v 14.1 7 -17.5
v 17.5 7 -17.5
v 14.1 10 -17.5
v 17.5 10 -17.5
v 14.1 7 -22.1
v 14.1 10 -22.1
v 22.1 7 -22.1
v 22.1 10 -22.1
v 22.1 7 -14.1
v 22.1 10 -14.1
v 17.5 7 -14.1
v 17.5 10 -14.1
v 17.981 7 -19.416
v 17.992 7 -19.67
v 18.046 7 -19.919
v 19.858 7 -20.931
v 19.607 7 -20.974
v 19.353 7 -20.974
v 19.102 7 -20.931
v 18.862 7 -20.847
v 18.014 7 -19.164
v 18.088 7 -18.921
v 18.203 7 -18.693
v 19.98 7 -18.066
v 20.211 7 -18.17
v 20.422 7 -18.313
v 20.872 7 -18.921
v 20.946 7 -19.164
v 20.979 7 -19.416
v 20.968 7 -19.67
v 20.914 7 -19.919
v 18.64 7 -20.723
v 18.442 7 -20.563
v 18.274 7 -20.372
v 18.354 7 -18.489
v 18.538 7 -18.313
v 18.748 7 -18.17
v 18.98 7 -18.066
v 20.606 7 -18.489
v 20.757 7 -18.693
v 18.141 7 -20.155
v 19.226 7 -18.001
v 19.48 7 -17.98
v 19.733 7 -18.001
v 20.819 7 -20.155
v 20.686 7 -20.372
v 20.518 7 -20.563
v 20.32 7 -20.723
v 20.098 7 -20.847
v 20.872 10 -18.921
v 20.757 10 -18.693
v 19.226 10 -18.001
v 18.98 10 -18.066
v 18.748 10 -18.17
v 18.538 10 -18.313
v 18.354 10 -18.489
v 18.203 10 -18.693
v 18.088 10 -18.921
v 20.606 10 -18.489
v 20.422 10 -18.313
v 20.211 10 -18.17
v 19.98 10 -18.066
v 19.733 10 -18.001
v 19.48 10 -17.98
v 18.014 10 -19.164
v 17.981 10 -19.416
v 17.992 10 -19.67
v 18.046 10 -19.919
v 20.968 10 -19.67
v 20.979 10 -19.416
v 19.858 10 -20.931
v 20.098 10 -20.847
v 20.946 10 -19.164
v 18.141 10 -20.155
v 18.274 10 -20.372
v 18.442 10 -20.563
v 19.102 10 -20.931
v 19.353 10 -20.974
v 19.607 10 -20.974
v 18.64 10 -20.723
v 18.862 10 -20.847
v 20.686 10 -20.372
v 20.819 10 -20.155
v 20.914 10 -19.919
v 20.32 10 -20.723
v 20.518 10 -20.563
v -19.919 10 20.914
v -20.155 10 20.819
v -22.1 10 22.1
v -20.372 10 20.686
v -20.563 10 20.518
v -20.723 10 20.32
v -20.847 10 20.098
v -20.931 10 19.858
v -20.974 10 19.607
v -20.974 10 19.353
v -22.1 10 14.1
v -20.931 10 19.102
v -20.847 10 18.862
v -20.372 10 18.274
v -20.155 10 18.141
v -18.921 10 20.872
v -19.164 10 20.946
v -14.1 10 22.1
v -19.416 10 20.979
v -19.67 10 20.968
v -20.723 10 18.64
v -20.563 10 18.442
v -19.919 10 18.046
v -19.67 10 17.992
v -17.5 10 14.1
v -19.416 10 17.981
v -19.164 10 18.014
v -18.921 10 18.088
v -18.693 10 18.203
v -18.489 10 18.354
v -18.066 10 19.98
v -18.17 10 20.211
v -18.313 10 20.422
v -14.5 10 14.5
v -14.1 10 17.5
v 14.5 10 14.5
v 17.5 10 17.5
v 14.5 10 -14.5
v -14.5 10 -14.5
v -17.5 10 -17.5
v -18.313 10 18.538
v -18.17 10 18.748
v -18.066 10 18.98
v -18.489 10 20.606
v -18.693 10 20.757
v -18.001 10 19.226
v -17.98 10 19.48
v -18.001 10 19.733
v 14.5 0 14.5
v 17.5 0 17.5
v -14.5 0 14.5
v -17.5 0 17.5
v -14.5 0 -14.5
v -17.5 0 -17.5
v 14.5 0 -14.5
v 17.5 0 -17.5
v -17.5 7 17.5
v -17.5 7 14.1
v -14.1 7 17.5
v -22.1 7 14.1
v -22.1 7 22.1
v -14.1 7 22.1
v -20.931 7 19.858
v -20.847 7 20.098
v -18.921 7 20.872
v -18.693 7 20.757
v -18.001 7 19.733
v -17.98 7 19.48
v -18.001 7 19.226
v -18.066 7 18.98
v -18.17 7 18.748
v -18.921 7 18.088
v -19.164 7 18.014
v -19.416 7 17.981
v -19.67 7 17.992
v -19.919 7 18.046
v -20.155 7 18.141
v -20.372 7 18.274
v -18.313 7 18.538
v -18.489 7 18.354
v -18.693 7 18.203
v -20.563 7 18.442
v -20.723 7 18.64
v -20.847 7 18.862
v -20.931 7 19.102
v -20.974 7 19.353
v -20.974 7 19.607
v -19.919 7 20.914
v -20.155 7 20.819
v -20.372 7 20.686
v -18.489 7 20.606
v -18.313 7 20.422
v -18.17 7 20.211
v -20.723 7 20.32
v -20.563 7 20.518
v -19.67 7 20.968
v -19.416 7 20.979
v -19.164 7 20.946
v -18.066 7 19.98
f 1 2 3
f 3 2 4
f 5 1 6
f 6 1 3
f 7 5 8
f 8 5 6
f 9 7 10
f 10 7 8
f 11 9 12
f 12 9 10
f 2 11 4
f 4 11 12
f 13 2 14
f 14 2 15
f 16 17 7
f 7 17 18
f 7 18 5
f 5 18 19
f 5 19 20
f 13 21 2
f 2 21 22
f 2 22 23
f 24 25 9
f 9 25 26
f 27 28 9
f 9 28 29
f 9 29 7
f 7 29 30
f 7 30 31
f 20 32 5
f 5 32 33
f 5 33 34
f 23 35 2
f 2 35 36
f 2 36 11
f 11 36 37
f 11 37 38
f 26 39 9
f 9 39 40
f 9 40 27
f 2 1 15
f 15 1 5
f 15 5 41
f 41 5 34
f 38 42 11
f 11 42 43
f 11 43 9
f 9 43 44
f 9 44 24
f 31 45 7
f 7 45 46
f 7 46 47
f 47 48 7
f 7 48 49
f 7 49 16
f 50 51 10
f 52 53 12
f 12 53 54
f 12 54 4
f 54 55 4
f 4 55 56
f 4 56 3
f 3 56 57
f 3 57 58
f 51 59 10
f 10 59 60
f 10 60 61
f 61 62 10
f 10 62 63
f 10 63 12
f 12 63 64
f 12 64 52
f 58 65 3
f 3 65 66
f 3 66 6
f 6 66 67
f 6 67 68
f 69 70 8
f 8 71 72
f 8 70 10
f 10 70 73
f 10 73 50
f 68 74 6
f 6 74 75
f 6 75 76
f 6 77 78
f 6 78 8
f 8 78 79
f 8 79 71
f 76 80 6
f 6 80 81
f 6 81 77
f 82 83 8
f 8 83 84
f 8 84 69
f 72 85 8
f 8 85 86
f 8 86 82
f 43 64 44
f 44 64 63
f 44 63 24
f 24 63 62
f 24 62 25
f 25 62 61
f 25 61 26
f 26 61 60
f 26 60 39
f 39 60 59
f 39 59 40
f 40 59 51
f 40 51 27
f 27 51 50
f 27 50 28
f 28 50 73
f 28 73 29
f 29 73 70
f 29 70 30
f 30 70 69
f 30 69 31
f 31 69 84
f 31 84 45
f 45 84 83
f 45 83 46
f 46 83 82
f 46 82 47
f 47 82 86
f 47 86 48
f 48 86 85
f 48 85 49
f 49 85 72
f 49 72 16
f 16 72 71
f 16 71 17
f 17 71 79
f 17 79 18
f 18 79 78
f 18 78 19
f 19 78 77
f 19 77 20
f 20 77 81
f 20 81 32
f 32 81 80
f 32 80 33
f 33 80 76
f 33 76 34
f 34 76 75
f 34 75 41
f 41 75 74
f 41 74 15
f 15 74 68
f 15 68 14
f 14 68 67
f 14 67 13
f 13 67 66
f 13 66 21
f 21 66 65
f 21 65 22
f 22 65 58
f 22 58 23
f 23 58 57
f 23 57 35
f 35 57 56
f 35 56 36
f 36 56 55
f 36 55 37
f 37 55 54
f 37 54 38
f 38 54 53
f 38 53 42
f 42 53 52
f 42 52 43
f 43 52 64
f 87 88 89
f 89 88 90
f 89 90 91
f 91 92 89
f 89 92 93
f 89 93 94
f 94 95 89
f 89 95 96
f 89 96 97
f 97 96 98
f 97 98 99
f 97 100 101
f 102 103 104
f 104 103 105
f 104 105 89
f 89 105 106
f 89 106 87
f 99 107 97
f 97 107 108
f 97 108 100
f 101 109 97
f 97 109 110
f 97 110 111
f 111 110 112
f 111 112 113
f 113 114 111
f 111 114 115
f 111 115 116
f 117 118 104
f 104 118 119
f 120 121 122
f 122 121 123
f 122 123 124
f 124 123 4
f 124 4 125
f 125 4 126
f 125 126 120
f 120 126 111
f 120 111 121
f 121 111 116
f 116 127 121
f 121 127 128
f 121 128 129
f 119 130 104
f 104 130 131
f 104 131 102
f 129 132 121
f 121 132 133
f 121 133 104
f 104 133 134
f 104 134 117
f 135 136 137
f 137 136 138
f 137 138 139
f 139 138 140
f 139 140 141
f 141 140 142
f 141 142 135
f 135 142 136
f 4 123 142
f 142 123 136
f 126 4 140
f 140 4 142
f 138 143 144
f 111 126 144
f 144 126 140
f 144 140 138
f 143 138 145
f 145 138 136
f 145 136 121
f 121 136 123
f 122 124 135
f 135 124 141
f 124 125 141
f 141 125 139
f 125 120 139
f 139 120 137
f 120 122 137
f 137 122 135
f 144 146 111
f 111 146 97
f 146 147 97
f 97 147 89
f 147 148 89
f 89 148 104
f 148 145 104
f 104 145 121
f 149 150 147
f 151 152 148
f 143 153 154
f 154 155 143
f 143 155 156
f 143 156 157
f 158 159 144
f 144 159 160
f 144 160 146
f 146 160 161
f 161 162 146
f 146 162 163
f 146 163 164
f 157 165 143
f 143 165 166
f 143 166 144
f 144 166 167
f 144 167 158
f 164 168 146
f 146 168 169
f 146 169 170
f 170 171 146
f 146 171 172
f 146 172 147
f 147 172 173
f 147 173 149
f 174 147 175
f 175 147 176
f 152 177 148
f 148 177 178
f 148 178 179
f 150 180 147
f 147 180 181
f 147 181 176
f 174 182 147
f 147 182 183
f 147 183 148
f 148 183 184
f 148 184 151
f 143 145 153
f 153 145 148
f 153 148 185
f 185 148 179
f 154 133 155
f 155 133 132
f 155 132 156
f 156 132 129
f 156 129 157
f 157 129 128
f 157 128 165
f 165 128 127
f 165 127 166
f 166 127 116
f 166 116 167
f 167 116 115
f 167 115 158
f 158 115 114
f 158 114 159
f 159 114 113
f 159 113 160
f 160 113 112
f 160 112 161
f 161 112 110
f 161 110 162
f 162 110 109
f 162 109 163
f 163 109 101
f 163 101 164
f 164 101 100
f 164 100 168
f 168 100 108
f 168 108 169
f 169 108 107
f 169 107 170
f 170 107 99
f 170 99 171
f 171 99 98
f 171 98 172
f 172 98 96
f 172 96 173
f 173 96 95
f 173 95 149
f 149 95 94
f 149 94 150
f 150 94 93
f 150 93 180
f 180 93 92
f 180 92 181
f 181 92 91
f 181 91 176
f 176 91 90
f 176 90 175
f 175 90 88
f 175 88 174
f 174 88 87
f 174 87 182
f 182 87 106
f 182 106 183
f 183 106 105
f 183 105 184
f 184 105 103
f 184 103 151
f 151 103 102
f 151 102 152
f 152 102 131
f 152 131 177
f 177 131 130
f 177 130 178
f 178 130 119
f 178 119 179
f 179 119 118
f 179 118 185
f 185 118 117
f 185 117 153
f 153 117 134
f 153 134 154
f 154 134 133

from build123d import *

# Parameters (mm, degrees)
SKETCH1_W           = 35
SKETCH1_H           = 35
SKETCH1_W_2         = 29
SKETCH1_H_2         = 29
BOSS_EXTRUDE1_DEPTH = 10
SKETCH2_R           = 1.5
BOSS_EXTRUDE2_DEPTH = 3


with BuildPart() as part:
    # Sketch1 → Boss-Extrude1 (new body)
    with BuildSketch(Plane(origin=(0, 0, 0), x_dir=(1, 0, 0), z_dir=(0, 1, 0))):
        Rectangle(SKETCH1_W, SKETCH1_H)
        Rectangle(SKETCH1_W_2, SKETCH1_H_2, mode=Mode.SUBTRACT)
    extrude(amount=BOSS_EXTRUDE1_DEPTH)


with BuildPart() as body_2:
    # Sketch2 → Boss-Extrude2 (new body)
    with BuildSketch(Plane(origin=(0, 10, 0), x_dir=(1, 0, 0), z_dir=(0, 1, 0))):
        Polygon((14.1, 17.5), (14.1, 22.1), (22.1, 22.1), (22.1, 14.1), (17.5, 14.1), (17.5, 17.5), align=None)
        with Locations(Location((19.479898987, 19.479898987, 0), (0, 0, 270))):
            Circle(SKETCH2_R, mode=Mode.SUBTRACT)
    boss_extrude2 = extrude(amount=-BOSS_EXTRUDE2_DEPTH)


with BuildPart() as part_1:
    add(part.part)

    # Mirror3: Boss-Extrude2 across plane
    add(boss_extrude2.mirror(Plane(origin=(0, 0, 0), x_dir=(0.7071067811865476, 0, 0.7071067811865475), z_dir=(0.7071067811865475, 0, -0.7071067811865476))))


solid = Compound([body_2.part, part_1.part])
